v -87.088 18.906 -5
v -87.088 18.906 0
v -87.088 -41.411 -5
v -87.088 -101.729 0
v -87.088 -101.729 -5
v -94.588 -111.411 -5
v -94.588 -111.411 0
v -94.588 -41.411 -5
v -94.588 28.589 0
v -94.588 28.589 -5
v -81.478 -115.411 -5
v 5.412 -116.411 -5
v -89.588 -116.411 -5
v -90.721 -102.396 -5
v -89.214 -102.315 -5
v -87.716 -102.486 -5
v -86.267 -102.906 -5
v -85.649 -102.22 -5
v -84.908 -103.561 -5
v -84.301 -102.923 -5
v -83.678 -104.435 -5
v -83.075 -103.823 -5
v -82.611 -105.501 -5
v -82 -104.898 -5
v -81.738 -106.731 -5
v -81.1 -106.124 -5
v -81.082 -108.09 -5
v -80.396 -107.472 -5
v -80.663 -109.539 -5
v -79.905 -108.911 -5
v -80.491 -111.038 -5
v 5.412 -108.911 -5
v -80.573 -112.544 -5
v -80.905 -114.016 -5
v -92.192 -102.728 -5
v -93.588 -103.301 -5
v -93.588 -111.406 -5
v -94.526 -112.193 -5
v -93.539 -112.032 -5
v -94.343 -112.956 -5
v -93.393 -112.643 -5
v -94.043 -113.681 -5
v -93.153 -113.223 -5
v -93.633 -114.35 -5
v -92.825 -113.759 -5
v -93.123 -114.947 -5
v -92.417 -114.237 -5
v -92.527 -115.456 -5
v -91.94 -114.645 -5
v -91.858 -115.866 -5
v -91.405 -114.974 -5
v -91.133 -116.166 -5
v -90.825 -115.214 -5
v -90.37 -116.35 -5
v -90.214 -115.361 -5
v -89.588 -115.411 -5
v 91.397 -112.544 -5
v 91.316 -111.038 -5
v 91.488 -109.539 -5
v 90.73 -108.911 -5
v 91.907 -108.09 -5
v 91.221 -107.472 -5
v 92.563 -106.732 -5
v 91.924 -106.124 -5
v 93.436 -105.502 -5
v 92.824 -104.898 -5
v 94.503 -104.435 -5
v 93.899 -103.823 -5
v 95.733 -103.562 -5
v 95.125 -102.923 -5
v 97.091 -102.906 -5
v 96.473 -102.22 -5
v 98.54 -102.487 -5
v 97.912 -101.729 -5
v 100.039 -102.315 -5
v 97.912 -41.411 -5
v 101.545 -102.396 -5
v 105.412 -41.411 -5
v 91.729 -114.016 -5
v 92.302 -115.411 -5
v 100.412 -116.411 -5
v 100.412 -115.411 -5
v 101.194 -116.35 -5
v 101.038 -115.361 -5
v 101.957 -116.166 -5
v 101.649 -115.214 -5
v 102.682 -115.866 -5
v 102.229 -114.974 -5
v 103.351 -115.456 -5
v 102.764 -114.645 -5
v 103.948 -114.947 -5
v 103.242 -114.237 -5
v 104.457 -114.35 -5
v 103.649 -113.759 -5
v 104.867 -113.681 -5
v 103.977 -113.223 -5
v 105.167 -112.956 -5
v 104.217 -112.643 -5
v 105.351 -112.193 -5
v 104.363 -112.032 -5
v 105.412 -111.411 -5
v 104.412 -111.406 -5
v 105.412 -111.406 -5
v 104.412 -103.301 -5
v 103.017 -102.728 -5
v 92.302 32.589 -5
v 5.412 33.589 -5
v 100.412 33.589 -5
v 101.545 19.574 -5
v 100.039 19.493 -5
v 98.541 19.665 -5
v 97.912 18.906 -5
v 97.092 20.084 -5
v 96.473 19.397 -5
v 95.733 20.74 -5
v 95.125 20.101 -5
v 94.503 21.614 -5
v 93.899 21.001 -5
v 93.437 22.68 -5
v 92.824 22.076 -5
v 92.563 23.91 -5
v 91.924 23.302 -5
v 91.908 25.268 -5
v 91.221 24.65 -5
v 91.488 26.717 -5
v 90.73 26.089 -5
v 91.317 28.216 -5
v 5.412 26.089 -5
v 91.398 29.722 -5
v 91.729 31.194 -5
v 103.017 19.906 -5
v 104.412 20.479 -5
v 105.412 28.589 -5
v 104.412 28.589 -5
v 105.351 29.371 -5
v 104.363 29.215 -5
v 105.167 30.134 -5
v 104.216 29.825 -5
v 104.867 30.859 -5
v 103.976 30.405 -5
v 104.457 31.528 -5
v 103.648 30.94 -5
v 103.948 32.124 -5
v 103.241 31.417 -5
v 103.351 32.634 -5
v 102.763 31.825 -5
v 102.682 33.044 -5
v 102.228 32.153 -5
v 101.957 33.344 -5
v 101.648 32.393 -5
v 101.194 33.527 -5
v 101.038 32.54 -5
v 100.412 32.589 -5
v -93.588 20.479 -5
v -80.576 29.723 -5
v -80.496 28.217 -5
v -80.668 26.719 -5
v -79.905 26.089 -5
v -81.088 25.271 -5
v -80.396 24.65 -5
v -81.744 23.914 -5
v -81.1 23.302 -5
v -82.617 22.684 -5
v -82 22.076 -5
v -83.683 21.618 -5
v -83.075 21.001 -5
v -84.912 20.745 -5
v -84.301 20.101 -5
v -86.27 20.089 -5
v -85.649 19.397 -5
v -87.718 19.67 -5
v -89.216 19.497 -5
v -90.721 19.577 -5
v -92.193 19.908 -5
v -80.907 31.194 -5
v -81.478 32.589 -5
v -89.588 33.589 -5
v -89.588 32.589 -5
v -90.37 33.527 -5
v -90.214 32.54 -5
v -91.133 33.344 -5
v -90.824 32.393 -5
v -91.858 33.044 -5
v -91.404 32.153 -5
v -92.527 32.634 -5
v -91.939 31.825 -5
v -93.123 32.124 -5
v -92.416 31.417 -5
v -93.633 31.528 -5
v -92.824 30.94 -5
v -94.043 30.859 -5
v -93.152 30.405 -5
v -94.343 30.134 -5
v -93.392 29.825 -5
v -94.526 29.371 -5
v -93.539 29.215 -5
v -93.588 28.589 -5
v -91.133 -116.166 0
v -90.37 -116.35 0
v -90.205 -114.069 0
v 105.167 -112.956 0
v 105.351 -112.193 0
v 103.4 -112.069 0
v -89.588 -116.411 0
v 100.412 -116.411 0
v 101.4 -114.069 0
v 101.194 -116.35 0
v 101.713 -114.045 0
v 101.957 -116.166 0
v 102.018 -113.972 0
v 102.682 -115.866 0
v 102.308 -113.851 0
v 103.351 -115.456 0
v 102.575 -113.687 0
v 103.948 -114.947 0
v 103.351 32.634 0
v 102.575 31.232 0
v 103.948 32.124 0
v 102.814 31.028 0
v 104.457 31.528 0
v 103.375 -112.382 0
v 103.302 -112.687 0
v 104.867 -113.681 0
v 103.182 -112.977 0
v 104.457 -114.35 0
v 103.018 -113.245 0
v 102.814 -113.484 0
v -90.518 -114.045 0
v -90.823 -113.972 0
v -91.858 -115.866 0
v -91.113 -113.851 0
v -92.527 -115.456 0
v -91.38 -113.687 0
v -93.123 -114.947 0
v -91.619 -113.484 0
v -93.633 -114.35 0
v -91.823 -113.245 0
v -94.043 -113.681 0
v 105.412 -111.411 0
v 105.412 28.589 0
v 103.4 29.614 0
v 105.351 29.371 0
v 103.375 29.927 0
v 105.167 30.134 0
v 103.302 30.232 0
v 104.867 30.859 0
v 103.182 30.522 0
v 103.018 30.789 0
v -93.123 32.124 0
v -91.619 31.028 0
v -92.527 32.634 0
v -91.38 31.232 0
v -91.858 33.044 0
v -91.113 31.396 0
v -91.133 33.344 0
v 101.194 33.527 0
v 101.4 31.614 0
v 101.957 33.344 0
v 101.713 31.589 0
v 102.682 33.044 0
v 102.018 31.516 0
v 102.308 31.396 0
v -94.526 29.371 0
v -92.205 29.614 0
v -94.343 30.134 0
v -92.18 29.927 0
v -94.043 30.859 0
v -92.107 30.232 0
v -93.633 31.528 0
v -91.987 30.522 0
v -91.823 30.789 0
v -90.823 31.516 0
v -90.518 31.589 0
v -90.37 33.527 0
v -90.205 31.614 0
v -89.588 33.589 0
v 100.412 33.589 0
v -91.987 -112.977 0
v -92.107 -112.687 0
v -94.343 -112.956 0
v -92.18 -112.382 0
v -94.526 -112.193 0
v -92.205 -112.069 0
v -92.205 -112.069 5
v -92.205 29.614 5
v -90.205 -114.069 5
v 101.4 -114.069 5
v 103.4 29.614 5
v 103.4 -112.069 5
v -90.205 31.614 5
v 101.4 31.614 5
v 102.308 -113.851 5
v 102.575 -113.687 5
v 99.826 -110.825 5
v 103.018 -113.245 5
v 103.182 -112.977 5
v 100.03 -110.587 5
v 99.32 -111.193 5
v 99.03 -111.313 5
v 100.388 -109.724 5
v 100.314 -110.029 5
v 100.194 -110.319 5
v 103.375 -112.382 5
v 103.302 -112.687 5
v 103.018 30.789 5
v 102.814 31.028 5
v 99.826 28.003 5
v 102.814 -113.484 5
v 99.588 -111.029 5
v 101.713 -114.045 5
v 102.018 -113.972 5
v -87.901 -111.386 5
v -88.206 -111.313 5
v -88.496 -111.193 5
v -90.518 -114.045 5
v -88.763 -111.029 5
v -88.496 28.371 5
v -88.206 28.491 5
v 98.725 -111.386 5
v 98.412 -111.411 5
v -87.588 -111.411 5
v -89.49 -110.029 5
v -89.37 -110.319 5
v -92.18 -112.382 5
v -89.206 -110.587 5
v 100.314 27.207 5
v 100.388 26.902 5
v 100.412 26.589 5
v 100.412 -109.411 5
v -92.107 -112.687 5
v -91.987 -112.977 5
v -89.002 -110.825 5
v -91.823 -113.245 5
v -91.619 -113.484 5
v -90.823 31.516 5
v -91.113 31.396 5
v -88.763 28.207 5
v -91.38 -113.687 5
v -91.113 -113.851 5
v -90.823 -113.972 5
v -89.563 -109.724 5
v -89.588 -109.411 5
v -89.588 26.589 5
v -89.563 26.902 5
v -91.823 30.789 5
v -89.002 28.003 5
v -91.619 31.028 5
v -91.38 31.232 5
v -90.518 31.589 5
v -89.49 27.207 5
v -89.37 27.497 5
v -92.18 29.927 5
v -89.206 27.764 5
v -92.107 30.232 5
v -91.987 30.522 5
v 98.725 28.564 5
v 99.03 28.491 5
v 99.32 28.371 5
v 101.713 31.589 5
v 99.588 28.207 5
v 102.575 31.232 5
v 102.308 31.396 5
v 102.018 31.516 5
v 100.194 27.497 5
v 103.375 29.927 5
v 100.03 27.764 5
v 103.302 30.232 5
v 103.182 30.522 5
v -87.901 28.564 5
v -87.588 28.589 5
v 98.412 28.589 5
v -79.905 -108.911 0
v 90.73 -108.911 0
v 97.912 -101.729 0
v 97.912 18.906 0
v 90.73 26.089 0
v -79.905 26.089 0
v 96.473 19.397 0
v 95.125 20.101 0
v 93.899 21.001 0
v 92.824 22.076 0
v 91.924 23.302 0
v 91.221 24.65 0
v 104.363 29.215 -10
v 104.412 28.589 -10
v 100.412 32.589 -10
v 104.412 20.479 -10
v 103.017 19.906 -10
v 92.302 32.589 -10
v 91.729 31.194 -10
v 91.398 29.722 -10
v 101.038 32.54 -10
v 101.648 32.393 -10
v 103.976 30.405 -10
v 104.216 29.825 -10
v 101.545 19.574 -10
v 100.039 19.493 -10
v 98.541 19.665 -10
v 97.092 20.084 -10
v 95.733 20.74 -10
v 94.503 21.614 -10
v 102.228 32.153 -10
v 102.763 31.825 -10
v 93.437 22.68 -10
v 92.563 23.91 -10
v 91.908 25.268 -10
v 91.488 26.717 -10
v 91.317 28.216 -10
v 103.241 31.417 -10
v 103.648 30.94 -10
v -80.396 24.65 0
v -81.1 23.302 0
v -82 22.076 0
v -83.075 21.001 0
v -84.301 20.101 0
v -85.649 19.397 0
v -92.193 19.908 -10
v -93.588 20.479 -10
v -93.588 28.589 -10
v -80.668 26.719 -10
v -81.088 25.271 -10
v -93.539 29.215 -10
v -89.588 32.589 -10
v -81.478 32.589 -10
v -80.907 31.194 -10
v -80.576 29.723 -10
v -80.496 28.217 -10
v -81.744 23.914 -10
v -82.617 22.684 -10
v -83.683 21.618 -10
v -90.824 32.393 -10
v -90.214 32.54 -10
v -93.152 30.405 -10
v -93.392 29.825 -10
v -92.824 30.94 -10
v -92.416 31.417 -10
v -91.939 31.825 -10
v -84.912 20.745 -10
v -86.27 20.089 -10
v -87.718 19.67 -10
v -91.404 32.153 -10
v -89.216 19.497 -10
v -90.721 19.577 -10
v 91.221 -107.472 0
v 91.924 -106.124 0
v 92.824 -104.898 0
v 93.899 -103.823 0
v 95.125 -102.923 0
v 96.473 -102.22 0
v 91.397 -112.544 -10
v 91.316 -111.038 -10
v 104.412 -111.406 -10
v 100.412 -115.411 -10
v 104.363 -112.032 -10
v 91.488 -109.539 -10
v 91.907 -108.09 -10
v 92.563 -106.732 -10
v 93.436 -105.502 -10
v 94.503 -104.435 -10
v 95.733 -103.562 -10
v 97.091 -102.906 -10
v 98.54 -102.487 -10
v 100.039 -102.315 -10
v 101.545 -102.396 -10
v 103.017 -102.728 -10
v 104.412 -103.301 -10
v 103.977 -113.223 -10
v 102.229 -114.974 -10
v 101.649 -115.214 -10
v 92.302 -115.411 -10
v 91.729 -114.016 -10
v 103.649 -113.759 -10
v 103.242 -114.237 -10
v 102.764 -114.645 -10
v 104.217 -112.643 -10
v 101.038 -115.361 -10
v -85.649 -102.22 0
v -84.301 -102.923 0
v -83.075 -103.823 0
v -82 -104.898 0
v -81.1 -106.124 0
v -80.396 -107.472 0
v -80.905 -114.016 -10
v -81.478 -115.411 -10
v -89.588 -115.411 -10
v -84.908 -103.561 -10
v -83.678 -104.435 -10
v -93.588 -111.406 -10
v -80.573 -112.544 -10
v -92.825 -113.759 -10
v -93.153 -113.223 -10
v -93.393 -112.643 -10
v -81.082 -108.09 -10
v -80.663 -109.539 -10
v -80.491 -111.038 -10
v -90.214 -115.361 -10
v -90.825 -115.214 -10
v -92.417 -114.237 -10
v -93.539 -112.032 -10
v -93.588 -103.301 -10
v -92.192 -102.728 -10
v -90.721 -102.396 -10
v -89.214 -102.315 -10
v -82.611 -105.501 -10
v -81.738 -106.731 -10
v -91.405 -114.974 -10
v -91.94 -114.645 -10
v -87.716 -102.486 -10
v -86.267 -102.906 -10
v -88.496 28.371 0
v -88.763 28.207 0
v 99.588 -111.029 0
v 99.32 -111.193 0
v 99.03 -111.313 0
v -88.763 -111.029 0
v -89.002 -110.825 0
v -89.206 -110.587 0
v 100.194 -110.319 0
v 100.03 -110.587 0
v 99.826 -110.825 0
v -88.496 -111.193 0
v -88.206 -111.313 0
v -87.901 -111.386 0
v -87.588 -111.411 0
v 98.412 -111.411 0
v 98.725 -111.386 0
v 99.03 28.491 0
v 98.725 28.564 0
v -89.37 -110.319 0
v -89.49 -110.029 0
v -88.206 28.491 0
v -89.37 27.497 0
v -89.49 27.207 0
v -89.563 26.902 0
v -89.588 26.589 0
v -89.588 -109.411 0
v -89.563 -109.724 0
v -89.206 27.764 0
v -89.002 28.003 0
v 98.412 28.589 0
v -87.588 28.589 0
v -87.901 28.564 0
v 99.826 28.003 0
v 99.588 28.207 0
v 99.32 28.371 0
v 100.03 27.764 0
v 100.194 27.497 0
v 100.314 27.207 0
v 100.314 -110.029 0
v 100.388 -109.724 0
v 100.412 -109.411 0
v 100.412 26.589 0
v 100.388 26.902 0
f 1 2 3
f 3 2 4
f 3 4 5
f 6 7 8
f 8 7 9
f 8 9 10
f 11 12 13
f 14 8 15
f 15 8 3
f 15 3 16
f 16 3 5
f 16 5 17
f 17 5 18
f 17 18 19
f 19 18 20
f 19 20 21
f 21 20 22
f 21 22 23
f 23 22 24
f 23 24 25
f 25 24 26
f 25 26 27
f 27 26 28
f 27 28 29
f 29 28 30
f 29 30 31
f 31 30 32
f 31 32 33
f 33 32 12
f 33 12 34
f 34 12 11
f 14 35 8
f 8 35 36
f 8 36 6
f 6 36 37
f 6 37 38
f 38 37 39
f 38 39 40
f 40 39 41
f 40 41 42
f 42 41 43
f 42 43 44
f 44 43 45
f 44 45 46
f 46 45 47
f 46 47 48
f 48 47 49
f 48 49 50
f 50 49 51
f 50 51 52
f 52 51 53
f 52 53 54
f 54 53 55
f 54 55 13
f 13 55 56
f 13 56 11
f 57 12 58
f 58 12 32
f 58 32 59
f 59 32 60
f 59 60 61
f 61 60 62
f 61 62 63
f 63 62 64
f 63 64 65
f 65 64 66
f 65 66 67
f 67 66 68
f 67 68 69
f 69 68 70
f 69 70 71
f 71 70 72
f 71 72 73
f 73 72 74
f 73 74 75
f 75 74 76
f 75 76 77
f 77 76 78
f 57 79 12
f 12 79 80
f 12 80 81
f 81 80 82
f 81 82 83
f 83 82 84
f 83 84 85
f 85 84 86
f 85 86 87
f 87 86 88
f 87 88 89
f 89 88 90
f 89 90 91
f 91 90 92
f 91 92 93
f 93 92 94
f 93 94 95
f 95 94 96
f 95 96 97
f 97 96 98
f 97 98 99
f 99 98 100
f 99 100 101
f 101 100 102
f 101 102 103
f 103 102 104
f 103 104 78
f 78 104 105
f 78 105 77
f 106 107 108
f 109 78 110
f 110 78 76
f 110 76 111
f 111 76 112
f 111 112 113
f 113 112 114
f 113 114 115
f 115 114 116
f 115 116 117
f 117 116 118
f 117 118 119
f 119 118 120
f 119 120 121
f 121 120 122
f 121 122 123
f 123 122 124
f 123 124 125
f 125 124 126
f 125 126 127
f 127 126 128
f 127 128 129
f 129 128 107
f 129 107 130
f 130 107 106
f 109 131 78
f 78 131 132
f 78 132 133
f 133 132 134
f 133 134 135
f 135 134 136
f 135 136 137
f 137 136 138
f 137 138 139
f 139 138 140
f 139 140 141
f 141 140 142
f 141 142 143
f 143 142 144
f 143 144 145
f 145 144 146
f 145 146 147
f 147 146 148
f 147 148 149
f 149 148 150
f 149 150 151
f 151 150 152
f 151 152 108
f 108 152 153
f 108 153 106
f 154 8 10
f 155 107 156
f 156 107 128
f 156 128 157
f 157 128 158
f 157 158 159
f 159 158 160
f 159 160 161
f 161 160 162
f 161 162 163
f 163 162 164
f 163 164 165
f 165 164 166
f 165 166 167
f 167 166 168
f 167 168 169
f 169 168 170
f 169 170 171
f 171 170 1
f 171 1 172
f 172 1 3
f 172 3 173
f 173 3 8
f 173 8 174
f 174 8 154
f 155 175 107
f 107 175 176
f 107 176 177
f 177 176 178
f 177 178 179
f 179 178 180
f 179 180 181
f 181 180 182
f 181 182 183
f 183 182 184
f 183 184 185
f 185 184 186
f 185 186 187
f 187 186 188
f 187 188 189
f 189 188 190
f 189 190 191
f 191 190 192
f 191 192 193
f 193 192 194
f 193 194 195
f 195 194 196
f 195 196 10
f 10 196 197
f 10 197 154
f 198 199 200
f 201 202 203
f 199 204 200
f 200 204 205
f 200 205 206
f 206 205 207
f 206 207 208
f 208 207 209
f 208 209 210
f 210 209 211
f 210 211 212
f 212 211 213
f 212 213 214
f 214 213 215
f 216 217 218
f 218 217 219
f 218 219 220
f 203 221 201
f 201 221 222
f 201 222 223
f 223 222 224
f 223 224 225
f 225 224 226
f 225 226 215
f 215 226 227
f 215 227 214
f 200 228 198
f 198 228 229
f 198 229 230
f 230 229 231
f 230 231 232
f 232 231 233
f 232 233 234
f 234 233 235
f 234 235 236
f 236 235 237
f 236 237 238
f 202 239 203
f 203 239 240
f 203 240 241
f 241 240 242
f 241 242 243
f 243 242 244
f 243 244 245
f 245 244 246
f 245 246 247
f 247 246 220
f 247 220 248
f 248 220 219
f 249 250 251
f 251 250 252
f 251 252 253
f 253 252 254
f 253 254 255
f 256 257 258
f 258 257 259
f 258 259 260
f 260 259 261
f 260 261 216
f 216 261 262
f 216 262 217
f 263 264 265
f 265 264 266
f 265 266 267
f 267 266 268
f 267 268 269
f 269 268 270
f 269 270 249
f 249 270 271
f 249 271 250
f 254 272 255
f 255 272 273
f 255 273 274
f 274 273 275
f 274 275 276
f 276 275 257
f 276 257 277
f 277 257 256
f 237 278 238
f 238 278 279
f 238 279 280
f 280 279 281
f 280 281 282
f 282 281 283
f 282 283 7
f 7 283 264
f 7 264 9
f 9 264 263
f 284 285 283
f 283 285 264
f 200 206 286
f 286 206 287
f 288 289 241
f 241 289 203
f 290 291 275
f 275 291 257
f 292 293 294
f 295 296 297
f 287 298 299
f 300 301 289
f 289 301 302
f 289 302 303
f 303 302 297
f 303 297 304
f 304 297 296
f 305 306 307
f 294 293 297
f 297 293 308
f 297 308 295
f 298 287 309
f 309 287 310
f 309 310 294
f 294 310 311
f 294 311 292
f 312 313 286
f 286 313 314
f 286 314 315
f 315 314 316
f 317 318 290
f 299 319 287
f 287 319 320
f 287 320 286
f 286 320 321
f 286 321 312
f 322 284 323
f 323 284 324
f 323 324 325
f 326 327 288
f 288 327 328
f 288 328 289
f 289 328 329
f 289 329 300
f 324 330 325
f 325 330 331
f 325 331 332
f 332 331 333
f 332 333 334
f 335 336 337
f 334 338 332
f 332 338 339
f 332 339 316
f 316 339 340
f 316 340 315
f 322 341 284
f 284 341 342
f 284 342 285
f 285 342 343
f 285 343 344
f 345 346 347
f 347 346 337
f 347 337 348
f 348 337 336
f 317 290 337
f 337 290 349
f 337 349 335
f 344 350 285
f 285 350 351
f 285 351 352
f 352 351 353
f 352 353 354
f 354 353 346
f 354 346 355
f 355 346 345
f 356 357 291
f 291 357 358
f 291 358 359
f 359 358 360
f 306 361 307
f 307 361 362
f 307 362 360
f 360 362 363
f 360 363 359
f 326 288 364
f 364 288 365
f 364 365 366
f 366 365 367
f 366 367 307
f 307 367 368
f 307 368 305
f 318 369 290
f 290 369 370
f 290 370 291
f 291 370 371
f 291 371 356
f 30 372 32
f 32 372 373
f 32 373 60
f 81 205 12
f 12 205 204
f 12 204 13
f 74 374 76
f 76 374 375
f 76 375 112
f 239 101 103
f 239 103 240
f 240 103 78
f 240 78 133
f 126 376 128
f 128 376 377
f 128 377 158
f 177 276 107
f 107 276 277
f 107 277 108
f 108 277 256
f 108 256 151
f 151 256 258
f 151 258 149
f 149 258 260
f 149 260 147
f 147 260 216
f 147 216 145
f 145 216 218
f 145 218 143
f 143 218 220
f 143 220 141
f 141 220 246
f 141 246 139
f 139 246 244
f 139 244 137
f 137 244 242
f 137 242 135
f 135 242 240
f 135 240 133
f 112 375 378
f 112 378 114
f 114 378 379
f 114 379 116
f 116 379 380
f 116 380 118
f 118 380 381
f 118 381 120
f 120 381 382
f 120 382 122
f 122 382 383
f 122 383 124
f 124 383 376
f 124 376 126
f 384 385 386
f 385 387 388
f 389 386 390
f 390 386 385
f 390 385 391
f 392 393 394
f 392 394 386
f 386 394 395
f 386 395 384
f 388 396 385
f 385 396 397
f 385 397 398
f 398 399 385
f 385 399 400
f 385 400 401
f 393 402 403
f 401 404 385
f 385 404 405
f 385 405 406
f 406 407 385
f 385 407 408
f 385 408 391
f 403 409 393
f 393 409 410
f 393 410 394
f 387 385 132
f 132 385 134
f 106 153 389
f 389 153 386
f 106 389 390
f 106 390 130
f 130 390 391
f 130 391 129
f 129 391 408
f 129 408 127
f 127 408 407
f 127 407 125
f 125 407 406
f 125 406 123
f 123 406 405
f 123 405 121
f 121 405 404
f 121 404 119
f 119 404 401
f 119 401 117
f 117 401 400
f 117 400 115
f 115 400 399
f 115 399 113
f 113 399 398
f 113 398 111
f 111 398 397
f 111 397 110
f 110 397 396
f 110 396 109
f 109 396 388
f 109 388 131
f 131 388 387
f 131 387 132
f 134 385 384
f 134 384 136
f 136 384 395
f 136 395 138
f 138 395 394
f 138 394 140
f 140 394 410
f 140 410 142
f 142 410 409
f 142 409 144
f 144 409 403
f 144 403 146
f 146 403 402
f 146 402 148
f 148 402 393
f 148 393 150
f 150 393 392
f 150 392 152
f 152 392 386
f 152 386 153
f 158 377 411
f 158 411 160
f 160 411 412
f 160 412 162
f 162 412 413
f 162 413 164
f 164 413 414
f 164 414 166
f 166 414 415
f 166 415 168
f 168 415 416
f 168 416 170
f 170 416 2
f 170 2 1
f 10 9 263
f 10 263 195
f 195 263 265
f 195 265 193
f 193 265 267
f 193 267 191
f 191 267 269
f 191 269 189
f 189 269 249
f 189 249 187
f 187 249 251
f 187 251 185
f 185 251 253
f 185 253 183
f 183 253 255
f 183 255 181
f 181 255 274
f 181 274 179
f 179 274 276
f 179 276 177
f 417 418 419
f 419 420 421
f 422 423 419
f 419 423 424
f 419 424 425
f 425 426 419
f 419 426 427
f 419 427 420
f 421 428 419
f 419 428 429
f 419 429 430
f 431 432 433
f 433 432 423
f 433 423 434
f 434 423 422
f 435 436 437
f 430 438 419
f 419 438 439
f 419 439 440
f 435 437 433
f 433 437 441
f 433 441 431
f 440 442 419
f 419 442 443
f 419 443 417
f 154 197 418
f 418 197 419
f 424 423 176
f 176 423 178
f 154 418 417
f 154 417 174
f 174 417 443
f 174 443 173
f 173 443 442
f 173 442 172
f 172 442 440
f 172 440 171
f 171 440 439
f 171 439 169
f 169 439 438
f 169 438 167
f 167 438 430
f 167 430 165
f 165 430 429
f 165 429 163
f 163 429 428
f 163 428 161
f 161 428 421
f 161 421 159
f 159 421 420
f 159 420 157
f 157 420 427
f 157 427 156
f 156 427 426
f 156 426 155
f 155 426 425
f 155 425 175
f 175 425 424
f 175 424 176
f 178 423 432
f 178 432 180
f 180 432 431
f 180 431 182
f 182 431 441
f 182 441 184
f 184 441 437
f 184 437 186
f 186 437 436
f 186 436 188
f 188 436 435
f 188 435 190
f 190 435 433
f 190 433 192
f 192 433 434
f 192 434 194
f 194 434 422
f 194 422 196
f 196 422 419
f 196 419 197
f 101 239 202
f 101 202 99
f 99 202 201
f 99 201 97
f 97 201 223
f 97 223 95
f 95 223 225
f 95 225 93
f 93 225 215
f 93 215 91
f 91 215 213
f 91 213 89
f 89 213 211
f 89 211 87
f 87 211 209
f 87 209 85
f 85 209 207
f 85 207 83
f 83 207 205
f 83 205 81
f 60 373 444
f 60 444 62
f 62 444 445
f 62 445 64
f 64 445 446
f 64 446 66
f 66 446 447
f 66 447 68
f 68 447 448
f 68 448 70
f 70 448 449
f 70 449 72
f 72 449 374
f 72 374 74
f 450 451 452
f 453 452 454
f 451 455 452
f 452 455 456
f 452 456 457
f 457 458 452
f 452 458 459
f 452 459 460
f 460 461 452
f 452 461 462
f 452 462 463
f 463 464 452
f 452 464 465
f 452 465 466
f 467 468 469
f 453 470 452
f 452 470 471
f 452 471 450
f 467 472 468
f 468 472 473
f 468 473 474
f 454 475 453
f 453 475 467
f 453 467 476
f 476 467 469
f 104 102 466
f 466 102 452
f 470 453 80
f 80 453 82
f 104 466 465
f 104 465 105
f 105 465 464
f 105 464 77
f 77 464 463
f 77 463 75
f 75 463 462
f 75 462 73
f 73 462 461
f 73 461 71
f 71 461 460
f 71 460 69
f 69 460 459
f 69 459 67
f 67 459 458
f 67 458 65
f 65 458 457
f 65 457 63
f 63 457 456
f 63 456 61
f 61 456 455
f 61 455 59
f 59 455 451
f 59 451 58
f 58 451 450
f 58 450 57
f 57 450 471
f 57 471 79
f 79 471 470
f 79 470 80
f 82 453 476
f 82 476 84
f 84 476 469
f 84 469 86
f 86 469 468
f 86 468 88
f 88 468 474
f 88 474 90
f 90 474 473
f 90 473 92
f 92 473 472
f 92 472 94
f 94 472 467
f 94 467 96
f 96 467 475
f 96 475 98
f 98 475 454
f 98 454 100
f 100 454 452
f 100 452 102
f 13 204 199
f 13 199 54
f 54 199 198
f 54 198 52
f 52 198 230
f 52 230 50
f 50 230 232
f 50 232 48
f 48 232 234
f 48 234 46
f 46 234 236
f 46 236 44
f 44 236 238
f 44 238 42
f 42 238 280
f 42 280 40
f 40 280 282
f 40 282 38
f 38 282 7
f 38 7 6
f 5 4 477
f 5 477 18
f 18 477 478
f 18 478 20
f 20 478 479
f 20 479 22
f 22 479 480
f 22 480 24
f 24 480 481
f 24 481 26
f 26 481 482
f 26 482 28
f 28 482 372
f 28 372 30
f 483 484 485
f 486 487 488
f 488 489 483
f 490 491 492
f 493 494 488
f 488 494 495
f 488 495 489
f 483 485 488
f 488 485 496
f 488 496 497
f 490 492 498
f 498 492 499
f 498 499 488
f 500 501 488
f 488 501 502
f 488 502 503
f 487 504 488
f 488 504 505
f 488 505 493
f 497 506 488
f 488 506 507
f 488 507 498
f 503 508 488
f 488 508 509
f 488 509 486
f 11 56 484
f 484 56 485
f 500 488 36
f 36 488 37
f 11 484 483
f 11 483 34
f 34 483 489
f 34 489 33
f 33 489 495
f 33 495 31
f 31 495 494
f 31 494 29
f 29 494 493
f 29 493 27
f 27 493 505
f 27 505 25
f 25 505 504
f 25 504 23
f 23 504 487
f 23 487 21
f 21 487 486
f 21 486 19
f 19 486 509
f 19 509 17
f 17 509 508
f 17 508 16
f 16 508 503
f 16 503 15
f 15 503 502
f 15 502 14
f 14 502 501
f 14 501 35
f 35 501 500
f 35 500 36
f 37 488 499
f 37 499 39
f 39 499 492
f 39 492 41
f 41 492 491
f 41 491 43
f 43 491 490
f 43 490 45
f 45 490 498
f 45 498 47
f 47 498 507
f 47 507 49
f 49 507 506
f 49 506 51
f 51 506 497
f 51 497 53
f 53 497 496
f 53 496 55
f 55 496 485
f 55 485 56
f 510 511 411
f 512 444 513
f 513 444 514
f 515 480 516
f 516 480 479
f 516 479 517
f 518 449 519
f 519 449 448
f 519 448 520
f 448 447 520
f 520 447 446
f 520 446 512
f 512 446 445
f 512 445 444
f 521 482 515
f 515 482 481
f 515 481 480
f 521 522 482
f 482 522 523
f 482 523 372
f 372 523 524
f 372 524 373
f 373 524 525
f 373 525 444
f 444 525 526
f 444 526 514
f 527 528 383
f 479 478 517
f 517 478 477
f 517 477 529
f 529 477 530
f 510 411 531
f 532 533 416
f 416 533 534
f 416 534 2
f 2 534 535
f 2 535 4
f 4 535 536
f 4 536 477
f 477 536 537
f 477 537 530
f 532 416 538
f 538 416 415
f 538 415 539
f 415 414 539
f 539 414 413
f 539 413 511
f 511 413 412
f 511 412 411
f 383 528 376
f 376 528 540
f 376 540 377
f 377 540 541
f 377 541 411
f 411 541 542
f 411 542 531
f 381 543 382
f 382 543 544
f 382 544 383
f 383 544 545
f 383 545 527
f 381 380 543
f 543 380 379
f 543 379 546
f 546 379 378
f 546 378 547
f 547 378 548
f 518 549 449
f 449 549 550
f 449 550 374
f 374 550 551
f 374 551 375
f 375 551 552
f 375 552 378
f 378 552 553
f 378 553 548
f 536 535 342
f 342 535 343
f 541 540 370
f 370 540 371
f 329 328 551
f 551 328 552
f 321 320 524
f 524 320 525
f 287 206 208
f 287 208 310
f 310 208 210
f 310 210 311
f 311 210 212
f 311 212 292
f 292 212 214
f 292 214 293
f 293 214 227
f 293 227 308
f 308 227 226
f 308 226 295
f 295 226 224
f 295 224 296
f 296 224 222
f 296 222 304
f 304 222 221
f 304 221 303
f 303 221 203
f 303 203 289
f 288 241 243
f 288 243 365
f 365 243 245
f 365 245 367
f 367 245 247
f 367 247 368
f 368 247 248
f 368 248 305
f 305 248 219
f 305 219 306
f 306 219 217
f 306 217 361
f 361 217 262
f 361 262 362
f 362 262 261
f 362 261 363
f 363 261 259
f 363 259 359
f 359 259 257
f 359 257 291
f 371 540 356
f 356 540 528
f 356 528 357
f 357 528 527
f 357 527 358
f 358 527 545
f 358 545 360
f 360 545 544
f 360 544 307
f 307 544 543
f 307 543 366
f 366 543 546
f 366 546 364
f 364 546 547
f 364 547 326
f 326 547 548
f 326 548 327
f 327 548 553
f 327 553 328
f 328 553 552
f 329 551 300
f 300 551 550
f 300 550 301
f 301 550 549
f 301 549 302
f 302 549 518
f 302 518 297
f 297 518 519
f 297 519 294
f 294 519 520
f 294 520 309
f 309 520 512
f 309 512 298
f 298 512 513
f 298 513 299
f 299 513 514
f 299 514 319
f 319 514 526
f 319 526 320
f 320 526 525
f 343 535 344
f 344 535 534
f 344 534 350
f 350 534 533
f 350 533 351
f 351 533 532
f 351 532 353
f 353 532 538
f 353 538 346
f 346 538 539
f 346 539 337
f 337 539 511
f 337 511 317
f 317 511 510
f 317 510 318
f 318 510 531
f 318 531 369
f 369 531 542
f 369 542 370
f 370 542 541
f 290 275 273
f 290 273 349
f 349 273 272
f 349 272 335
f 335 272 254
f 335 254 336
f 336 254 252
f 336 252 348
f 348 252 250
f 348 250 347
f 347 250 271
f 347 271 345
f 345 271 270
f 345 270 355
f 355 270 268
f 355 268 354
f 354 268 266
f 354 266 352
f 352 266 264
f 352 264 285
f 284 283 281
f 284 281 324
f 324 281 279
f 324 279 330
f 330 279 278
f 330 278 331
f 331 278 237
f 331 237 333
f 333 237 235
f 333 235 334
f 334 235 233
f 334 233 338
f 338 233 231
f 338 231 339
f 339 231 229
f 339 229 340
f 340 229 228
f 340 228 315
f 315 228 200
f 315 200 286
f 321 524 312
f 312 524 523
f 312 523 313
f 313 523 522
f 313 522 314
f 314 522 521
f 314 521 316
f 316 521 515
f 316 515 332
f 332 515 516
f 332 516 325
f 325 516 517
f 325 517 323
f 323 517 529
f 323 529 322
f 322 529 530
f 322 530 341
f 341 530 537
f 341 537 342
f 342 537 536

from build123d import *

# Parameters (mm, degrees)
RESSALTO_EXTRUS_O1_DEPTH   = 10
RESSALTO_EXTRUS_O1_2_DEPTH = 10
RESSALTO_EXTRUS_O1_3_DEPTH = 10
RESSALTO_EXTRUS_O1_4_DEPTH = 10
RESSALTO_EXTRUS_O2_DEPTH   = 5
RESSALTO_EXTRUS_O2_2_DEPTH = 5
RESSALTO_EXTRUS_O2_3_DEPTH = 5
RESSALTO_EXTRUS_O2_4_DEPTH = 5
ESBO_O6_W                  = 8.660254038
ESBO_O6_H                  = 1
ESBO_O6_W_2                = 1
ESBO_O6_H_2                = 8.660254038
ESBO_O6_H_3                = 8.655255985
CORTE_EXTRUS_O2_DEPTH      = 5
CORTE_EXTRUS_O10_START     = -5
CORTE_EXTRUS_O10_DEPTH     = 5
CORTE_EXTRUS_O11_DEPTH     = 5
CORTE_EXTRUS_O12_START     = -5
CORTE_EXTRUS_O12_DEPTH     = 5
CORTE_EXTRUS_O15_DEPTH     = 5
CORTE_EXTRUS_O23_DEPTH     = 5
CORTE_EXTRUS_O24_DEPTH     = 5
ESBO_O15_W                 = 195.604606203
ESBO_O15_H                 = 145.68333658
RESSALTO_EXTRUS_O3_DEPTH   = 5
ESBO_O16_W                 = 190
ESBO_O16_H                 = 140
CORTE_EXTRUS_O25_DEPTH     = 5
FILETE1_R                  = 2
FILETE2_R                  = 2
FILETE3_R                  = 2
FILETE4_R                  = 2
FILETE5_R                  = 2
FILETE6_R                  = 2
FILETE7_R                  = 2
FILETE8_R                  = 2


with BuildPart() as part:
    # Esboço4 → Ressalto-extrusão1 (new body)
    with BuildSketch(Plane.XY):
        with BuildLine():
            Line((-94.587795422, 19.928649923), (-94.587795422, 28.588903961))
            ThreePointArc((-94.587795422, 28.588903961), (-93.123329328, 32.124437867), (-89.587795422, 33.588903961))
            Line((-89.587795422, 33.588903961), (-80.927541384, 33.588903961))
            ThreePointArc((-80.927541384, 33.588903961), (-82.51672761, 21.517836149), (-94.587795422, 19.928649923))
        make_face()
    extrude(amount=-RESSALTO_EXTRUS_O1_DEPTH)


with BuildPart() as body_2:
    # Esboço4 → Ressalto-extrus_o1 2 (new body)
    with BuildSketch(Plane.XY):
        with BuildLine():
            Line((91.75195054, 33.588903961), (100.412204578, 33.588903961))
            ThreePointArc((100.412204578, 33.588903961), (103.947738484, 32.124437867), (105.412204578, 28.588903961))
            Line((105.412204578, 28.588903961), (105.412204578, 19.928649923))
            ThreePointArc((105.412204578, 19.928649923), (93.341136766, 21.517836149), (91.75195054, 33.588903961))
        make_face()
    extrude(amount=-RESSALTO_EXTRUS_O1_2_DEPTH)


with BuildPart() as body_3:
    # Esboço4 → Ressalto-extrus_o1 3 (new body)
    with BuildSketch(Plane.XY):
        with BuildLine():
            Line((105.412204578, -102.750842001), (105.412204578, -111.411096039))
            ThreePointArc((105.412204578, -111.411096039), (103.947738484, -114.946629945), (100.412204578, -116.411096039))
            Line((100.412204578, -116.411096039), (91.75195054, -116.411096039))
            ThreePointArc((91.75195054, -116.411096039), (93.341136766, -104.340028227), (105.412204578, -102.750842001))
        make_face()
    extrude(amount=-RESSALTO_EXTRUS_O1_3_DEPTH)


with BuildPart() as body_4:
    # Esboço4 → Ressalto-extrus_o1 4 (new body)
    with BuildSketch(Plane.XY):
        with BuildLine():
            Line((-80.927541384, -116.411096039), (-89.587795422, -116.411096039))
            ThreePointArc((-89.587795422, -116.411096039), (-93.123329328, -114.946629945), (-94.587795422, -111.411096039))
            Line((-94.587795422, -111.411096039), (-94.587795422, -102.750842001))
            ThreePointArc((-94.587795422, -102.750842001), (-82.51672761, -104.340028227), (-80.927541384, -116.411096039))
        make_face()
    extrude(amount=-RESSALTO_EXTRUS_O1_4_DEPTH)


with BuildPart() as body_5:
    # Esboço5 → Ressalto-extrusão2 (new body)
    with BuildSketch(Plane.XY):
        with BuildLine():
            Line((-87.087795422, 18.906445595), (-87.087795422, -101.728637674))
            ThreePointArc((-87.087795422, -101.728637674), (-90.938249206, -101.502701892), (-94.587795422, -102.750842001))
            Line((-94.587795422, -102.750842001), (-94.587795422, 19.928649923))
            ThreePointArc((-94.587795422, 19.928649923), (-90.938249206, 18.680509814), (-87.087795422, 18.906445595))
        make_face()
    extrude(amount=-RESSALTO_EXTRUS_O2_DEPTH)


with BuildPart() as body_6:
    # Esboço5 → Ressalto-extrus_o2 2 (new body)
    with BuildSketch(Plane.XY):
        with BuildLine():
            Line((-80.927541384, -116.411096039), (91.75195054, -116.411096039))
            ThreePointArc((91.75195054, -116.411096039), (90.50381043, -112.761549823), (90.729746212, -108.911096039))
            Line((90.729746212, -108.911096039), (-79.905337057, -108.911096039))
            ThreePointArc((-79.905337057, -108.911096039), (-79.679401275, -112.761549823), (-80.927541384, -116.411096039))
        make_face()
    extrude(amount=-RESSALTO_EXTRUS_O2_2_DEPTH)


with BuildPart() as body_7:
    # Esboço5 → Ressalto-extrus_o2 3 (new body)
    with BuildSketch(Plane.XY):
        with BuildLine():
            Line((97.912204578, 18.906445595), (97.912204578, -101.728637674))
            ThreePointArc((97.912204578, -101.728637674), (101.762658361, -101.502701892), (105.412204578, -102.750842001))
            Line((105.412204578, -102.750842001), (105.412204578, 19.928649923))
            ThreePointArc((105.412204578, 19.928649923), (101.762658361, 18.680509814), (97.912204578, 18.906445595))
        make_face()
    extrude(amount=-RESSALTO_EXTRUS_O2_3_DEPTH)


with BuildPart() as body_8:
    # Esboço5 → Ressalto-extrus_o2 4 (new body)
    with BuildSketch(Plane.XY):
        with BuildLine():
            Line((90.729746212, 26.088903961), (-79.905337057, 26.088903961))
            ThreePointArc((-79.905337057, 26.088903961), (-79.679401275, 29.939357745), (-80.927541384, 33.588903961))
            Line((-80.927541384, 33.588903961), (91.75195054, 33.588903961))
            ThreePointArc((91.75195054, 33.588903961), (90.50381043, 29.939357745), (90.729746212, 26.088903961))
        make_face()
    extrude(amount=-RESSALTO_EXTRUS_O2_4_DEPTH)


with BuildPart() as corte_extrus_o2_tool:
    # Esboço6 → Corte-extrusão2 (new body)
    with BuildSketch(Plane(origin=(0, 0, -10), x_dir=(-1, 0, 0), z_dir=(0, 0, -1))):
        with Locations((-96.082077559, 33.088903961)):
            Rectangle(ESBO_O6_W, ESBO_O6_H)
        with Locations((-104.912204578, 24.258776942)):
            Rectangle(ESBO_O6_W_2, ESBO_O6_H_2)
        with Locations((85.257668403, 33.088903961)):
            Rectangle(ESBO_O6_W, ESBO_O6_H)
        with Locations((94.087795422, 24.258776942)):
            Rectangle(ESBO_O6_W_2, ESBO_O6_H_2)
        with Locations((94.087795422, -107.078469994)):
            Rectangle(ESBO_O6_W_2, ESBO_O6_H_3)
        with Locations((85.257668403, -115.911096039)):
            Rectangle(ESBO_O6_W, ESBO_O6_H)
        with Locations((-96.082077559, -115.911096039)):
            Rectangle(ESBO_O6_W, ESBO_O6_H)
        with Locations((-104.912204578, -107.078469994)):
            Rectangle(ESBO_O6_W_2, ESBO_O6_H_3)
    extrude(amount=-CORTE_EXTRUS_O2_DEPTH)


with BuildPart() as part_1:
    add(part.part)

    # Corte-extrusão2: cut by corte_extrus_o2_tool
    add(corte_extrus_o2_tool.part, mode=Mode.SUBTRACT)


with BuildPart() as body_2_1:
    add(body_2.part)

    # Corte-extrusão2: cut by corte_extrus_o2_tool
    add(corte_extrus_o2_tool.part, mode=Mode.SUBTRACT)


with BuildPart() as body_3_1:
    add(body_3.part)

    # Corte-extrusão2: cut by corte_extrus_o2_tool
    add(corte_extrus_o2_tool.part, mode=Mode.SUBTRACT)


with BuildPart() as body_4_1:
    add(body_4.part)

    # Corte-extrusão2: cut by corte_extrus_o2_tool
    add(corte_extrus_o2_tool.part, mode=Mode.SUBTRACT)


with BuildPart() as corte_extrus_o10_tool:
    # Esboço7 → Corte-extrusão10 (new body)
    with BuildSketch(Plane(origin=(0, 0, -10), x_dir=(-1, 0, 0), z_dir=(0, 0, -1)).offset(CORTE_EXTRUS_O10_START)):
        with BuildLine():
            Line((-104.412204578, 20.478816645), (-104.412204578, 19.928649923))
            Line((-104.412204578, 19.928649923), (-105.412204578, 19.928649923))
            ThreePointArc((-105.412204578, 19.928649923), (-93.341136766, 21.517836149), (-91.75195054, 33.588903961))
            Line((-91.75195054, 33.588903961), (-91.75195054, 32.588903961))
            Line((-91.75195054, 32.588903961), (-92.302117262, 32.588903961))
            ThreePointArc((-92.302117262, 32.588903961), (-93.947771981, 22.124471364), (-104.412204578, 20.478816645))
        make_face()
        with BuildLine():
            Line((80.927541384, 33.588903961), (80.927541384, 32.588903961))
            Line((80.927541384, 32.588903961), (81.478060811, 32.588903961))
            ThreePointArc((81.478060811, 32.588903961), (83.127936997, 22.129045536), (93.587795422, 20.47916935))
            Line((93.587795422, 20.47916935), (93.587795422, 19.928649923))
            Line((93.587795422, 19.928649923), (94.587795422, 19.928649923))
            ThreePointArc((94.587795422, 19.928649923), (82.51672761, 21.517836149), (80.927541384, 33.588903961))
        make_face()
        with BuildLine():
            Line((94.587795422, -102.750842001), (93.587795422, -102.750842001))
            Line((93.587795422, -102.750842001), (93.587795422, -103.300929913))
            ThreePointArc((93.587795422, -103.300929913), (83.122340911, -104.945641528), (81.477629296, -115.411096039))
            Line((81.477629296, -115.411096039), (80.927541384, -115.411096039))
            Line((80.927541384, -115.411096039), (80.927541384, -116.411096039))
            ThreePointArc((80.927541384, -116.411096039), (82.51672761, -104.340028227), (94.587795422, -102.750842001))
        make_face()
        with BuildLine():
            Line((-105.412204578, -102.750842001), (-104.412204578, -102.750842001))
            Line((-104.412204578, -102.750842001), (-104.412204578, -103.300967216))
            ThreePointArc((-104.412204578, -103.300967216), (-93.947233755, -104.946125217), (-92.302075754, -115.411096039))
            Line((-92.302075754, -115.411096039), (-91.75195054, -115.411096039))
            Line((-91.75195054, -115.411096039), (-91.75195054, -116.411096039))
            ThreePointArc((-91.75195054, -116.411096039), (-93.341136766, -104.340028227), (-105.412204578, -102.750842001))
        make_face()
    extrude(amount=CORTE_EXTRUS_O10_DEPTH)


with BuildPart() as part_2:
    add(part_1.part)

    # Corte-extrusão10: cut by corte_extrus_o10_tool
    add(corte_extrus_o10_tool.part, mode=Mode.SUBTRACT)

    # Esboço10 → Corte-extrusão12 (cut)
    with BuildSketch(Plane(origin=(0, 0, -10), x_dir=(-1, 0, 0), z_dir=(0, 0, -1)).offset(CORTE_EXTRUS_O12_START)):
        with BuildLine():
            Line((89.587795422, 33.588903961), (89.587795422, 32.588903961))
            ThreePointArc((89.587795422, 32.588903961), (92.416222547, 31.417331086), (93.587795422, 28.588903961))
            Line((93.587795422, 28.588903961), (94.587795422, 28.588903961))
            ThreePointArc((94.587795422, 28.588903961), (93.123329328, 32.124437867), (89.587795422, 33.588903961))
        make_face()
    extrude(amount=CORTE_EXTRUS_O12_DEPTH, mode=Mode.SUBTRACT)



with BuildPart() as body_2_2:
    add(body_2_1.part)

    # Corte-extrusão10: cut by corte_extrus_o10_tool
    add(corte_extrus_o10_tool.part, mode=Mode.SUBTRACT)

    # Esboço9 → Corte-extrusão11 (cut)
    with BuildSketch(Plane(origin=(0, 0, -10), x_dir=(-1, 0, 0), z_dir=(0, 0, -1))):
        with BuildLine():
            Line((-104.412204578, 28.588903961), (-105.412204578, 28.588903961))
            ThreePointArc((-105.412204578, 28.588903961), (-103.947738484, 32.124437867), (-100.412204578, 33.588903961))
            Line((-100.412204578, 33.588903961), (-100.412204578, 32.588903961))
            ThreePointArc((-100.412204578, 32.588903961), (-103.240631702, 31.417331086), (-104.412204578, 28.588903961))
        make_face()
    extrude(amount=-CORTE_EXTRUS_O11_DEPTH, mode=Mode.SUBTRACT)


with BuildPart() as body_3_2:
    add(body_3_1.part)

    # Corte-extrusão10: cut by corte_extrus_o10_tool
    add(corte_extrus_o10_tool.part, mode=Mode.SUBTRACT)

    # Esboço12 → Corte-extrusão15 (cut)
    with BuildSketch(Plane(origin=(0, 0, -10), x_dir=(-1, 0, 0), z_dir=(0, 0, -1))):
        with BuildLine():
            Line((-105.412204578, -111.406097986), (-104.412204578, -111.406097986))
            ThreePointArc((-104.412204578, -111.406097986), (-103.241666833, -114.237024137), (-100.412204578, -115.411096039))
            Line((-100.412204578, -115.411096039), (-100.412204578, -116.411096039))
            ThreePointArc((-100.412204578, -116.411096039), (-103.949505916, -114.944862489), (-105.412204578, -111.406097986))
        make_face()
    extrude(amount=-CORTE_EXTRUS_O15_DEPTH, mode=Mode.SUBTRACT)


with BuildPart() as body_4_2:
    add(body_4_1.part)

    # Corte-extrusão10: cut by corte_extrus_o10_tool
    add(corte_extrus_o10_tool.part, mode=Mode.SUBTRACT)

    # Esboço13 → Corte-extrusão23 (cut)
    with BuildSketch(Plane(origin=(0, 0, -10), x_dir=(-1, 0, 0), z_dir=(0, 0, -1))):
        with BuildLine():
            Line((89.587795422, -115.91873065), (89.587795422, -116.411096039))
            ThreePointArc((89.587795422, -116.411096039), (93.123329328, -114.946629945), (94.587795422, -111.411096039))
            Line((94.587795422, -111.411096039), (94.087795422, -111.408597013))
            ThreePointArc((94.087795422, -111.408597013), (92.771874683, -114.595644347), (89.587795422, -115.91873065))
        make_face()
    extrude(amount=-CORTE_EXTRUS_O23_DEPTH, mode=Mode.SUBTRACT)

    # Esboço14 → Corte-extrusão24 (cut)
    with BuildSketch(Plane(origin=(0, 0, -10), x_dir=(-1, 0, 0), z_dir=(0, 0, -1))):
        with BuildLine():
            Line((89.587795422, -115.411096039), (89.587795422, -116.007236172))
            Line((89.587795422, -116.007236172), (93.587795422, -115.579473673))
            Line((93.587795422, -115.579473673), (94.418359323, -115.579473673))
            Line((94.418359323, -115.579473673), (94.647359239, -111.35922068))
            Line((94.647359239, -111.35922068), (93.587795422, -111.406097986))
            ThreePointArc((93.587795422, -111.406097986), (92.417257678, -114.237024137), (89.587795422, -115.411096039))
        make_face()
    extrude(amount=-CORTE_EXTRUS_O24_DEPTH, mode=Mode.SUBTRACT)


with BuildPart() as part_3:
    add(part_2.part)

    add(body_2_2.part)  # Ressalto-extrusão3 merges body 2

    add(body_3_2.part)  # Ressalto-extrusão3 merges body 3

    add(body_4_2.part)  # Ressalto-extrusão3 merges body 4

    add(body_5.part)  # Ressalto-extrusão3 merges body 5

    add(body_6.part)  # Ressalto-extrusão3 merges body 6

    add(body_7.part)  # Ressalto-extrusão3 merges body 7

    add(body_8.part)  # Ressalto-extrusão3 merges body 8
    # Esboço15 → Ressalto-extrusão3 (add)
    with BuildSketch(Plane.XY):
        with Locations((5.597386114, -41.227756112)):
            Rectangle(ESBO_O15_W, ESBO_O15_H)
    extrude(amount=RESSALTO_EXTRUS_O3_DEPTH)

    # Esboço16 → Corte-extrusão25 (cut)
    with BuildSketch(Plane.XY.offset(5)):
        with Locations((5.412204578, -41.411096039)):
            Rectangle(ESBO_O16_W, ESBO_O16_H)
    extrude(amount=-CORTE_EXTRUS_O25_DEPTH, mode=Mode.SUBTRACT)

    # Filete1
    filete1_edges = [part_3.edges().sort_by_distance(p)[0] for p in [
        (103.399689215, -114.069424402, 2.5),
    ]]
    fillet(filete1_edges, radius=FILETE1_R)

    # Filete2
    filete2_edges = [part_3.edges().sort_by_distance(p)[0] for p in [
        (103.399689215, 31.613912178, 2.5),
    ]]
    fillet(filete2_edges, radius=FILETE2_R)

    # Filete3
    filete3_edges = [part_3.edges().sort_by_distance(p)[0] for p in [
        (100.412204578, 28.588903961, 2.5),
    ]]
    fillet(filete3_edges, radius=FILETE3_R)

    # Filete4
    filete4_edges = [part_3.edges().sort_by_distance(p)[0] for p in [
        (100.412204578, -111.411096039, 2.5),
    ]]
    fillet(filete4_edges, radius=FILETE4_R)

    # Filete5
    filete5_edges = [part_3.edges().sort_by_distance(p)[0] for p in [
        (-89.587795422, 28.588903961, 2.5),
    ]]
    fillet(filete5_edges, radius=FILETE5_R)

    # Filete6
    filete6_edges = [part_3.edges().sort_by_distance(p)[0] for p in [
        (-92.204916988, 31.613912178, 2.5),
    ]]
    fillet(filete6_edges, radius=FILETE6_R)

    # Filete7
    filete7_edges = [part_3.edges().sort_by_distance(p)[0] for p in [
        (-92.204916988, -114.069424402, 2.5),
    ]]
    fillet(filete7_edges, radius=FILETE7_R)

    # Filete8
    filete8_edges = [part_3.edges().sort_by_distance(p)[0] for p in [
        (-89.587795422, -111.411096039, 2.5),
    ]]
    fillet(filete8_edges, radius=FILETE8_R)


solid = part_3.part
